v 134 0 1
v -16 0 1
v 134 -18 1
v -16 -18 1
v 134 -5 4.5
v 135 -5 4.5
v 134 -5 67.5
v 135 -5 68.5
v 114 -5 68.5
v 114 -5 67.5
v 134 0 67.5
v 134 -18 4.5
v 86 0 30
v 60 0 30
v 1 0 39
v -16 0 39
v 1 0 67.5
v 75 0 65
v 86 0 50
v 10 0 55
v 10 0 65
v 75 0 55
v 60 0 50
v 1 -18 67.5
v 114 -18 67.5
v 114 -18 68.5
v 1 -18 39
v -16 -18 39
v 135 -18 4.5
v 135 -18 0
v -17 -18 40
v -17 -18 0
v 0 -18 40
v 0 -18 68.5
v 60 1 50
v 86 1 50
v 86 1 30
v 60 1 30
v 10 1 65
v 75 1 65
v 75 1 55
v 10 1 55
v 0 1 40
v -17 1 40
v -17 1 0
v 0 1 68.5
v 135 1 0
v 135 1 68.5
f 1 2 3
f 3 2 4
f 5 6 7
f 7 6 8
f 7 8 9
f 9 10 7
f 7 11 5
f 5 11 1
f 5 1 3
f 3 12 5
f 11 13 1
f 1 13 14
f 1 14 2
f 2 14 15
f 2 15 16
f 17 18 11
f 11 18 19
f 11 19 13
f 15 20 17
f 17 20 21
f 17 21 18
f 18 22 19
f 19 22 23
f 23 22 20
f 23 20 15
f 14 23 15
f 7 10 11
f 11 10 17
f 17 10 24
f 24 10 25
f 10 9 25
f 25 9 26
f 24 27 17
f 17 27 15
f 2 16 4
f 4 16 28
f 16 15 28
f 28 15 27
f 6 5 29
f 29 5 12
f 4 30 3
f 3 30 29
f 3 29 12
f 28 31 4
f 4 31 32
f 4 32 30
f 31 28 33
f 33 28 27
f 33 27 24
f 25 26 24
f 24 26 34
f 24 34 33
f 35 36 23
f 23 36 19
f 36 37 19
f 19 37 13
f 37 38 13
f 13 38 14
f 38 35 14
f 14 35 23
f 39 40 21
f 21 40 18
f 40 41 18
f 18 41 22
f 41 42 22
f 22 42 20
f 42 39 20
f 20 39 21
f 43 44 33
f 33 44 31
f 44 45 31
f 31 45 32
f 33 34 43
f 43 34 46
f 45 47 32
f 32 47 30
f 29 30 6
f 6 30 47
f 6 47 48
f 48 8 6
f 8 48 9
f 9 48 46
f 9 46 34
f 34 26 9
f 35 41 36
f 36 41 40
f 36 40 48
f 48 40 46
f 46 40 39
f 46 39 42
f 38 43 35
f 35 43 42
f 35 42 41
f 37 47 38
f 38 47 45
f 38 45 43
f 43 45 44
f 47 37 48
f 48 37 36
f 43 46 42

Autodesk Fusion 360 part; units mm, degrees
sketch "Skizze1" plane through (0, 0, 0) normal (0, 1, 0) x (1, 0, 0)
  line L0 (0, 0) -> (135, 0)
  line L1 (135, 0) -> (135, -68.5)
  line L2 (135, -68.5) -> (0, -68.5)
  line L3 (0, -68.5) -> (0, 0)
  dimension "d1" = 135
  dimension "d2" = 68.5
extrude "Extrusion1" add sketch "Skizze1" along normal blind 1
sketch "Skizze2" plane through (0, 0, 0) normal (0, 1, 0) x (1, 0, 0)
  line L0 (0, 0) -> (-17, 0)
  line L1 (-17, 0) -> (-17, -40)
  line L2 (-17, -40) -> (0, -40)
  line L3 (0, -40) -> (0, 0)
  dimension "d5" = 17
  dimension "d6" = 40
extrude "Extrusion2" add sketch "Skizze2" along normal blind 1
sketch "Skizze3" plane through (0, 1, 0) normal (0, 1, 0) x (-1, 0, 0)
  line L0 (0, 68.5) -> (-135, 68.5)
  line L1 (-135, 68.5) -> (-135, 0)
  line L2 (-135, 0) -> (17, 0)
  line L3 (17, 0) -> (17, 40)
  line L4 (17, 40) -> (0, 40)
  line L5 (0, 40) -> (0, 68.5)
  line L6 (-10, 65) -> (-75, 65)
  line L7 (-75, 65) -> (-75, 55)
  line L8 (-75, 55) -> (-10, 55)
  line L9 (-10, 55) -> (-10, 65)
  dimension "d9" = 65
  dimension "d10" = 10
extrude "Extrusion3" cut sketch "Skizze3" against normal blind 1 contours L6 L7 L8 L9
sketch "Skizze4" plane through (0, 1, 0) normal (0, 1, 0) x (-1, 0, 0)
  line L0 (-75, 65) -> (-10, 65)
  line L1 (-10, 65) -> (-10, 55)
  line L2 (-10, 55) -> (-75, 55)
  line L3 (-75, 55) -> (-75, 65)
  line L4 (0, 68.5) -> (-135, 68.5)
  line L5 (-135, 68.5) -> (-135, 0)
  line L6 (-135, 0) -> (17, 0)
  line L7 (17, 0) -> (17, 40)
  line L8 (17, 40) -> (0, 40)
  line L9 (0, 40) -> (0, 68.5)
  line L10 (-60, 50) -> (-86, 50)
  line L11 (-86, 50) -> (-86, 30)
  line L12 (-86, 30) -> (-60, 30)
  line L13 (-60, 30) -> (-60, 50)
  dimension "d13" = 26
  dimension "d14" = 20
extrude "Extrusion4" cut sketch "Skizze4" against normal blind 1 contours L10 L11 L12 L13
sketch "Skizze5" plane through (0, 0, 0) normal (0, -1, 0) x (1, 0, 0)
  line L0 (60, 50) -> (86, 50)
  line L1 (86, 50) -> (86, 30)
  line L2 (86, 30) -> (60, 30)
  line L3 (60, 30) -> (60, 50)
  line L4 (10, 65) -> (75, 65)
  line L5 (75, 65) -> (75, 55)
  line L6 (75, 55) -> (10, 55)
  line L7 (10, 55) -> (10, 65)
  line L8 (135, 68.5) -> (0, 68.5)
  line L9 (0, 68.5) -> (0, 40)
  line L10 (0, 40) -> (-17, 40)
  line L11 (-17, 40) -> (-17, 0)
  line L12 (-17, 0) -> (135, 0)
  line L13 (135, 0) -> (135, 68.5)
  line L14 (135, 0) -> (-17, 0)
  line L15 (-17, 0) -> (-17, 0.5)
  line L16 (-17, 0.5) -> (135, 0.5)
  line L17 (135, 0.5) -> (135, 0)
  dimension "d17" = 0.5
extrude "Extrusion5" add sketch "Skizze5" along normal blind 18 contours L11 L12 L13 L14 L15 L16 L17
sketch "Skizze6" plane through (0, 0, 0) normal (0, -1, 0) x (1, 0, 0)
  line L0 (-17, 0.5) -> (135, 0.5)
  line L1 (135, 0.5) -> (135, 68.5)
  line L2 (135, 68.5) -> (0, 68.5)
  line L3 (0, 68.5) -> (0, 40)
  line L4 (0, 40) -> (-17, 40)
  line L5 (-17, 40) -> (-17, 0.5)
  line L6 (10, 65) -> (75, 65)
  line L7 (75, 65) -> (75, 55)
  line L8 (75, 55) -> (10, 55)
  line L9 (10, 55) -> (10, 65)
  line L10 (60, 50) -> (86, 50)
  line L11 (86, 50) -> (86, 30)
  line L12 (86, 30) -> (60, 30)
  line L13 (60, 30) -> (60, 50)
  line L14 (-17, 40) -> (-16.5, 40)
  line L15 (-16.5, 40) -> (-16.5, 0.5)
  line L16 (-16.5, 0.5) -> (-17, 0.5)
  line L17 (-17, 0.5) -> (-17, 40)
extrude "Extrusion6" add sketch "Skizze6" along normal blind 18 contours L0 L4 L5 L14 L15 L16 L17
sketch "Skizze7" plane through (0, 0, 0) normal (0, -1, 0) x (1, 0, 0)
  line L0 (60, 50) -> (86, 50)
  line L1 (86, 50) -> (86, 30)
  line L2 (86, 30) -> (60, 30)
  line L3 (60, 30) -> (60, 50)
  line L4 (10, 65) -> (75, 65)
  line L5 (75, 65) -> (75, 55)
  line L6 (75, 55) -> (10, 55)
  line L7 (10, 55) -> (10, 65)
  line L8 (-16.5, 40) -> (-16.5, 0.5)
  line L9 (-16.5, 0.5) -> (135, 0.5)
  line L10 (135, 0.5) -> (135, 68.5)
  line L11 (135, 68.5) -> (0, 68.5)
  line L12 (0, 68.5) -> (0, 40)
  line L13 (0, 40) -> (-16.5, 40)
  line L14 (0, 40) -> (-16.5, 40)
  line L15 (-16.5, 40) -> (-16.5, 39.5)
  line L16 (-16.5, 39.5) -> (0, 39.5)
  line L17 (0, 39.5) -> (0, 40)
  dimension "d22" = 0.5
extrude "Extrusion7" add sketch "Skizze7" along normal blind 18 contours L8 L13 L14 L15 L16 L17
sketch "Skizze8" plane through (0, 0, 0) normal (0, -1, 0) x (1, 0, 0)
  line L0 (0, 40) -> (0, 39.5)
  line L1 (0, 39.5) -> (-16.5, 39.5)
  line L2 (-16.5, 39.5) -> (-16.5, 0.5)
  line L3 (-16.5, 0.5) -> (135, 0.5)
  line L4 (135, 0.5) -> (135, 68.5)
  line L5 (135, 68.5) -> (0, 68.5)
  line L6 (0, 68.5) -> (0, 40)
  line L7 (10, 65) -> (75, 65)
  line L8 (75, 65) -> (75, 55)
  line L9 (75, 55) -> (10, 55)
  line L10 (10, 55) -> (10, 65)
  line L11 (60, 50) -> (86, 50)
  line L12 (86, 50) -> (86, 30)
  line L13 (86, 30) -> (60, 30)
  line L14 (60, 30) -> (60, 50)
  line L15 (0, 68.5) -> (0.5, 68.5)
  line L16 (0.5, 68.5) -> (0.5, 39.5)
  line L17 (0.5, 39.5) -> (0, 39.5)
  line L18 (0, 39.5) -> (0, 68.5)
extrude "Extrusion8" add sketch "Skizze8" along normal blind 18 contours L0 L5 L6 L15 L16 L17 L18
sketch "Skizze9" plane through (0, 0, 0) normal (0, -1, 0) x (1, 0, 0)
  line L0 (60, 50) -> (86, 50)
  line L1 (86, 50) -> (86, 30)
  line L2 (86, 30) -> (60, 30)
  line L3 (60, 30) -> (60, 50)
  line L4 (10, 65) -> (75, 65)
  line L5 (75, 65) -> (75, 55)
  line L6 (75, 55) -> (10, 55)
  line L7 (10, 55) -> (10, 65)
  line L8 (0.5, 68.5) -> (0.5, 39.5)
  line L9 (0.5, 39.5) -> (-16.5, 39.5)
  line L10 (-16.5, 39.5) -> (-16.5, 0.5)
  line L11 (-16.5, 0.5) -> (135, 0.5)
  line L12 (135, 0.5) -> (135, 68.5)
  line L13 (135, 68.5) -> (0.5, 68.5)
  line L14 (0.5, 68.5) -> (114, 68.5)
  line L15 (114, 68.5) -> (114, 68)
  line L16 (114, 68) -> (0.5, 68)
  line L17 (0.5, 68) -> (0.5, 68.5)
extrude "Extrusion9" add sketch "Skizze9" along normal blind 18 contours L8 L13 L14 L15 L16 L17
sketch "Skizze10" plane through (0, 0, 0) normal (0, -1, 0) x (1, 0, 0)
  line L0 (114, 68.5) -> (114, 68)
  line L1 (114, 68) -> (0.5, 68)
  line L2 (0.5, 68) -> (0.5, 39.5)
  line L3 (0.5, 39.5) -> (-16.5, 39.5)
  line L4 (-16.5, 39.5) -> (-16.5, 0.5)
  line L5 (-16.5, 0.5) -> (135, 0.5)
  line L6 (135, 0.5) -> (135, 68.5)
  line L7 (135, 68.5) -> (114, 68.5)
  line L8 (10, 65) -> (75, 65)
  line L9 (75, 65) -> (75, 55)
  line L10 (75, 55) -> (10, 55)
  line L11 (10, 55) -> (10, 65)
  line L12 (60, 50) -> (86, 50)
  line L13 (86, 50) -> (86, 30)
  line L14 (86, 30) -> (60, 30)
  line L15 (60, 30) -> (60, 50)
  line L16 (135, 0.5) -> (134.5, 0.5)
  line L17 (134.5, 0.5) -> (134.5, 4.5)
  line L18 (134.5, 4.5) -> (135, 4.5)
  line L19 (135, 4.5) -> (135, 0.5)
  dimension "d29" = 0.5
  dimension "d30" = 4
extrude "Extrusion10" add sketch "Skizze10" along normal blind 18 contours L5 L6 L16 L17 L18 L19
sketch "Skizze11" plane through (0, 0, 0) normal (0, -1, 0) x (1, 0, 0)
  line L0 (60, 50) -> (86, 50)
  line L1 (86, 50) -> (86, 30)
  line L2 (86, 30) -> (60, 30)
  line L3 (60, 30) -> (60, 50)
  line L4 (10, 65) -> (75, 65)
  line L5 (75, 65) -> (75, 55)
  line L6 (75, 55) -> (10, 55)
  line L7 (10, 55) -> (10, 65)
  line L8 (134.5, 0.5) -> (134.5, 4.5)
  line L9 (134.5, 4.5) -> (135, 4.5)
  line L10 (135, 4.5) -> (135, 68.5)
  line L11 (135, 68.5) -> (114, 68.5)
  line L12 (114, 68.5) -> (114, 68)
  line L13 (114, 68) -> (0.5, 68)
  line L14 (0.5, 68) -> (0.5, 39.5)
  line L15 (0.5, 39.5) -> (-16.5, 39.5)
  line L16 (-16.5, 39.5) -> (-16.5, 0.5)
  line L17 (-16.5, 0.5) -> (134.5, 0.5)
  line L18 (135, 68.5) -> (134.5, 68.5)
  line L19 (134.5, 68.5) -> (134.5, 4.5)
  line L20 (134.5, 4.5) -> (135, 4.5)
  line L21 (135, 4.5) -> (135, 68.5)
extrude "Extrusion11" add sketch "Skizze11" along normal blind 5 contours L9 L10 L11 L18 L19 L20 L21
sketch "Skizze12" plane through (0, 0, 0) normal (0, -1, 0) x (1, 0, 0)
  line L0 (134.5, 0.5) -> (134.5, 68.5)
  line L1 (134.5, 68.5) -> (114, 68.5)
  line L2 (114, 68.5) -> (114, 68)
  line L3 (114, 68) -> (0.5, 68)
  line L4 (0.5, 68) -> (0.5, 39.5)
  line L5 (0.5, 39.5) -> (-16.5, 39.5)
  line L6 (-16.5, 39.5) -> (-16.5, 0.5)
  line L7 (-16.5, 0.5) -> (134.5, 0.5)
  line L8 (60, 50) -> (86, 50)
  line L9 (86, 50) -> (86, 30)
  line L10 (86, 30) -> (60, 30)
  line L11 (60, 30) -> (60, 50)
  line L12 (10, 65) -> (75, 65)
  line L13 (75, 65) -> (75, 55)
  line L14 (75, 55) -> (10, 55)
  line L15 (10, 55) -> (10, 65)
  line L16 (134.5, 68.5) -> (114, 68.5)
  line L17 (114, 68.5) -> (114, 68)
  line L18 (114, 68) -> (134.5, 68)
  line L19 (134.5, 68) -> (134.5, 68.5)
extrude "Extrusion12" add sketch "Skizze12" along normal blind 5 contours L0 L1 L2 L16 L17 L18 L19
sketch "Skizze13" plane through (0, 0, 0) normal (0, -1, 0) x (1, 0, 0)
  line L0 (134.5, 68) -> (0.5, 68)
  line L1 (0.5, 68) -> (0.5, 39.5)
  line L2 (0.5, 39.5) -> (-16.5, 39.5)
  line L3 (-16.5, 39.5) -> (-16.5, 0.5)
  line L4 (-16.5, 0.5) -> (134.5, 0.5)
  line L5 (134.5, 0.5) -> (134.5, 68)
  line L6 (60, 50) -> (86, 50)
  line L7 (86, 50) -> (86, 30)
  line L8 (86, 30) -> (60, 30)
  line L9 (60, 30) -> (60, 50)
  line L10 (10, 65) -> (75, 65)
  line L11 (75, 65) -> (75, 55)
  line L12 (75, 55) -> (10, 55)
  line L13 (10, 55) -> (10, 65)
  line L14 (1, 68) -> (0.5, 68)
  line L15 (0.5, 68) -> (0.5, 39.5)
  line L16 (0.5, 39.5) -> (1, 39.5)
  line L17 (1, 39.5) -> (1, 68)
extrude "Extrusion13" add sketch "Skizze13" along normal blind 18 contours L0 L1 L14 L15 L16 L17
sketch "Skizze14" plane through (0, 0, 0) normal (0, -1, 0) x (1, 0, 0)
  line L0 (10, 65) -> (75, 65)
  line L1 (75, 65) -> (75, 55)
  line L2 (75, 55) -> (10, 55)
  line L3 (10, 55) -> (10, 65)
  line L4 (60, 50) -> (86, 50)
  line L5 (86, 50) -> (86, 30)
  line L6 (86, 30) -> (60, 30)
  line L7 (60, 30) -> (60, 50)
  line L8 (1, 68) -> (1, 39.5)
  line L9 (1, 39.5) -> (-16.5, 39.5)
  line L10 (-16.5, 39.5) -> (-16.5, 0.5)
  line L11 (-16.5, 0.5) -> (134.5, 0.5)
  line L12 (134.5, 0.5) -> (134.5, 68)
  line L13 (134.5, 68) -> (1, 68)
  line L14 (-16.5, 39) -> (1, 39)
  line L15 (1, 39) -> (1, 39.5)
  line L16 (1, 39.5) -> (-16.5, 39.5)
  line L17 (-16.5, 39.5) -> (-16.5, 39)
extrude "Extrusion14" add sketch "Skizze14" along normal blind 18 contours L9 L10 L14 L15 L16 L17
sketch "Skizze15" plane through (0, 0, 0) normal (0, -1, 0) x (1, 0, 0)
  line L0 (1, 39) -> (-16.5, 39)
  line L1 (-16.5, 39) -> (-16.5, 0.5)
  line L2 (-16.5, 0.5) -> (134.5, 0.5)
  line L3 (134.5, 0.5) -> (134.5, 68)
  line L4 (134.5, 68) -> (1, 68)
  line L5 (1, 68) -> (1, 39)
  line L6 (10, 65) -> (75, 65)
  line L7 (75, 65) -> (75, 55)
  line L8 (75, 55) -> (10, 55)
  line L9 (10, 55) -> (10, 65)
  line L10 (60, 50) -> (86, 50)
  line L11 (86, 50) -> (86, 30)
  line L12 (86, 30) -> (60, 30)
  line L13 (60, 30) -> (60, 50)
  line L14 (-16, 39) -> (-16.5, 39)
  line L15 (-16.5, 39) -> (-16.5, 0.5)
  line L16 (-16.5, 0.5) -> (-16, 0.5)
  line L17 (-16, 0.5) -> (-16, 39)
extrude "Extrusion15" add sketch "Skizze15" along normal blind 18 contours L0 L1 L2 L14 L15 L16 L17
sketch "Skizze16" plane through (0, 0, 0) normal (0, -1, 0) x (1, 0, 0)
  line L0 (-16, 39) -> (-16, 0.5)
  line L1 (-16, 0.5) -> (134.5, 0.5)
  line L2 (134.5, 0.5) -> (134.5, 68)
  line L3 (134.5, 68) -> (1, 68)
  line L4 (1, 68) -> (1, 39)
  line L5 (1, 39) -> (-16, 39)
  line L6 (10, 65) -> (75, 65)
  line L7 (75, 65) -> (75, 55)
  line L8 (75, 55) -> (10, 55)
  line L9 (10, 55) -> (10, 65)
  line L10 (60, 50) -> (86, 50)
  line L11 (86, 50) -> (86, 30)
  line L12 (86, 30) -> (60, 30)
  line L13 (60, 30) -> (60, 50)
  line L14 (-16, 1) -> (134.5, 1)
  line L15 (134.5, 1) -> (134.5, 0.5)
  line L16 (134.5, 0.5) -> (-16, 0.5)
  line L17 (-16, 0.5) -> (-16, 1)
extrude "Extrusion16" add sketch "Skizze16" along normal blind 18 contours L0 L1 L2 L14 L15 L16 L17
sketch "Skizze17" plane through (0, 0, 0) normal (0, -1, 0) x (1, 0, 0)
  line L0 (-16, 1) -> (134.5, 1)
  line L1 (134.5, 1) -> (134.5, 68)
  line L2 (134.5, 68) -> (1, 68)
  line L3 (1, 68) -> (1, 39)
  line L4 (1, 39) -> (-16, 39)
  line L5 (-16, 39) -> (-16, 1)
  line L6 (10, 65) -> (75, 65)
  line L7 (75, 65) -> (75, 55)
  line L8 (75, 55) -> (10, 55)
  line L9 (10, 55) -> (10, 65)
  line L10 (60, 50) -> (86, 50)
  line L11 (86, 50) -> (86, 30)
  line L12 (86, 30) -> (60, 30)
  line L13 (60, 30) -> (60, 50)
  line L14 (114, 68) -> (1, 68)
  line L15 (1, 68) -> (1, 67.5)
  line L16 (1, 67.5) -> (114, 67.5)
  line L17 (114, 67.5) -> (114, 68)
  dimension "d45" = 0.5
extrude "Extrusion17" add sketch "Skizze17" along normal blind 18 contours L2 L3 L14 L15 L16 L17
sketch "Skizze18" plane through (0, 0, 0) normal (0, -1, 0) x (1, 0, 0)
  line L0 (114, 67.5) -> (1, 67.5)
  line L1 (1, 67.5) -> (1, 39)
  line L2 (1, 39) -> (-16, 39)
  line L3 (-16, 39) -> (-16, 1)
  line L4 (-16, 1) -> (134.5, 1)
  line L5 (134.5, 1) -> (134.5, 68)
  line L6 (134.5, 68) -> (114, 68)
  line L7 (114, 68) -> (114, 67.5)
  line L8 (10, 65) -> (75, 65)
  line L9 (75, 65) -> (75, 55)
  line L10 (75, 55) -> (10, 55)
  line L11 (10, 55) -> (10, 65)
  line L12 (60, 50) -> (86, 50)
  line L13 (86, 50) -> (86, 30)
  line L14 (86, 30) -> (60, 30)
  line L15 (60, 30) -> (60, 50)
  line L16 (114, 67.5) -> (134.5, 67.5)
  line L17 (134.5, 67.5) -> (134.5, 68)
  line L18 (134.5, 68) -> (114, 68)
  line L19 (114, 68) -> (114, 67.5)
extrude "Extrusion18" add sketch "Skizze18" along normal blind 5 contours L5 L6 L7 L16 L17 L18 L19
sketch "Skizze19" plane through (0, 0, 0) normal (0, -1, 0) x (1, 0, 0)
  line L0 (60, 50) -> (86, 50)
  line L1 (86, 50) -> (86, 30)
  line L2 (86, 30) -> (60, 30)
  line L3 (60, 30) -> (60, 50)
  line L4 (10, 65) -> (75, 65)
  line L5 (75, 65) -> (75, 55)
  line L6 (75, 55) -> (10, 55)
  line L7 (10, 55) -> (10, 65)
  line L8 (134.5, 67.5) -> (1, 67.5)
  line L9 (1, 67.5) -> (1, 39)
  line L10 (1, 39) -> (-16, 39)
  line L11 (-16, 39) -> (-16, 1)
  line L12 (-16, 1) -> (134.5, 1)
  line L13 (134.5, 1) -> (134.5, 67.5)
  line L14 (134.5, 67.5) -> (134, 67.5)
  line L15 (134, 67.5) -> (134, 1)
  line L16 (134, 1) -> (134.5, 1)
  line L17 (134.5, 1) -> (134.5, 67.5)
extrude "Extrusion19" add sketch "Skizze19" along normal blind 5 contours L8 L12 L13 L14 L15 L16 L17
sketch "Skizze20" plane through (0, -5, 0) normal (0, -1, 0) x (1, 0, 0)
  line L0 (135, 4.5) -> (135, 68.5)
  line L1 (135, 68.5) -> (114, 68.5)
  line L2 (114, 68.5) -> (114, 67.5)
  line L3 (114, 67.5) -> (134, 67.5)
  line L4 (134, 67.5) -> (134, 1)
  line L5 (134, 1) -> (134.5, 1)
  line L6 (134.5, 1) -> (134.5, 4.5)
  line L7 (134.5, 4.5) -> (135, 4.5)
  line L8 (134.5, 4.5) -> (134, 4.5)
  line L9 (134, 4.5) -> (134, 1)
  line L10 (134, 1) -> (134.5, 1)
  line L11 (134.5, 1) -> (134.5, 4.5)
extrude "Extrusion20" add sketch "Skizze20" along normal blind 13 contours L4 L5 L6 L8 L9 L10 L11
